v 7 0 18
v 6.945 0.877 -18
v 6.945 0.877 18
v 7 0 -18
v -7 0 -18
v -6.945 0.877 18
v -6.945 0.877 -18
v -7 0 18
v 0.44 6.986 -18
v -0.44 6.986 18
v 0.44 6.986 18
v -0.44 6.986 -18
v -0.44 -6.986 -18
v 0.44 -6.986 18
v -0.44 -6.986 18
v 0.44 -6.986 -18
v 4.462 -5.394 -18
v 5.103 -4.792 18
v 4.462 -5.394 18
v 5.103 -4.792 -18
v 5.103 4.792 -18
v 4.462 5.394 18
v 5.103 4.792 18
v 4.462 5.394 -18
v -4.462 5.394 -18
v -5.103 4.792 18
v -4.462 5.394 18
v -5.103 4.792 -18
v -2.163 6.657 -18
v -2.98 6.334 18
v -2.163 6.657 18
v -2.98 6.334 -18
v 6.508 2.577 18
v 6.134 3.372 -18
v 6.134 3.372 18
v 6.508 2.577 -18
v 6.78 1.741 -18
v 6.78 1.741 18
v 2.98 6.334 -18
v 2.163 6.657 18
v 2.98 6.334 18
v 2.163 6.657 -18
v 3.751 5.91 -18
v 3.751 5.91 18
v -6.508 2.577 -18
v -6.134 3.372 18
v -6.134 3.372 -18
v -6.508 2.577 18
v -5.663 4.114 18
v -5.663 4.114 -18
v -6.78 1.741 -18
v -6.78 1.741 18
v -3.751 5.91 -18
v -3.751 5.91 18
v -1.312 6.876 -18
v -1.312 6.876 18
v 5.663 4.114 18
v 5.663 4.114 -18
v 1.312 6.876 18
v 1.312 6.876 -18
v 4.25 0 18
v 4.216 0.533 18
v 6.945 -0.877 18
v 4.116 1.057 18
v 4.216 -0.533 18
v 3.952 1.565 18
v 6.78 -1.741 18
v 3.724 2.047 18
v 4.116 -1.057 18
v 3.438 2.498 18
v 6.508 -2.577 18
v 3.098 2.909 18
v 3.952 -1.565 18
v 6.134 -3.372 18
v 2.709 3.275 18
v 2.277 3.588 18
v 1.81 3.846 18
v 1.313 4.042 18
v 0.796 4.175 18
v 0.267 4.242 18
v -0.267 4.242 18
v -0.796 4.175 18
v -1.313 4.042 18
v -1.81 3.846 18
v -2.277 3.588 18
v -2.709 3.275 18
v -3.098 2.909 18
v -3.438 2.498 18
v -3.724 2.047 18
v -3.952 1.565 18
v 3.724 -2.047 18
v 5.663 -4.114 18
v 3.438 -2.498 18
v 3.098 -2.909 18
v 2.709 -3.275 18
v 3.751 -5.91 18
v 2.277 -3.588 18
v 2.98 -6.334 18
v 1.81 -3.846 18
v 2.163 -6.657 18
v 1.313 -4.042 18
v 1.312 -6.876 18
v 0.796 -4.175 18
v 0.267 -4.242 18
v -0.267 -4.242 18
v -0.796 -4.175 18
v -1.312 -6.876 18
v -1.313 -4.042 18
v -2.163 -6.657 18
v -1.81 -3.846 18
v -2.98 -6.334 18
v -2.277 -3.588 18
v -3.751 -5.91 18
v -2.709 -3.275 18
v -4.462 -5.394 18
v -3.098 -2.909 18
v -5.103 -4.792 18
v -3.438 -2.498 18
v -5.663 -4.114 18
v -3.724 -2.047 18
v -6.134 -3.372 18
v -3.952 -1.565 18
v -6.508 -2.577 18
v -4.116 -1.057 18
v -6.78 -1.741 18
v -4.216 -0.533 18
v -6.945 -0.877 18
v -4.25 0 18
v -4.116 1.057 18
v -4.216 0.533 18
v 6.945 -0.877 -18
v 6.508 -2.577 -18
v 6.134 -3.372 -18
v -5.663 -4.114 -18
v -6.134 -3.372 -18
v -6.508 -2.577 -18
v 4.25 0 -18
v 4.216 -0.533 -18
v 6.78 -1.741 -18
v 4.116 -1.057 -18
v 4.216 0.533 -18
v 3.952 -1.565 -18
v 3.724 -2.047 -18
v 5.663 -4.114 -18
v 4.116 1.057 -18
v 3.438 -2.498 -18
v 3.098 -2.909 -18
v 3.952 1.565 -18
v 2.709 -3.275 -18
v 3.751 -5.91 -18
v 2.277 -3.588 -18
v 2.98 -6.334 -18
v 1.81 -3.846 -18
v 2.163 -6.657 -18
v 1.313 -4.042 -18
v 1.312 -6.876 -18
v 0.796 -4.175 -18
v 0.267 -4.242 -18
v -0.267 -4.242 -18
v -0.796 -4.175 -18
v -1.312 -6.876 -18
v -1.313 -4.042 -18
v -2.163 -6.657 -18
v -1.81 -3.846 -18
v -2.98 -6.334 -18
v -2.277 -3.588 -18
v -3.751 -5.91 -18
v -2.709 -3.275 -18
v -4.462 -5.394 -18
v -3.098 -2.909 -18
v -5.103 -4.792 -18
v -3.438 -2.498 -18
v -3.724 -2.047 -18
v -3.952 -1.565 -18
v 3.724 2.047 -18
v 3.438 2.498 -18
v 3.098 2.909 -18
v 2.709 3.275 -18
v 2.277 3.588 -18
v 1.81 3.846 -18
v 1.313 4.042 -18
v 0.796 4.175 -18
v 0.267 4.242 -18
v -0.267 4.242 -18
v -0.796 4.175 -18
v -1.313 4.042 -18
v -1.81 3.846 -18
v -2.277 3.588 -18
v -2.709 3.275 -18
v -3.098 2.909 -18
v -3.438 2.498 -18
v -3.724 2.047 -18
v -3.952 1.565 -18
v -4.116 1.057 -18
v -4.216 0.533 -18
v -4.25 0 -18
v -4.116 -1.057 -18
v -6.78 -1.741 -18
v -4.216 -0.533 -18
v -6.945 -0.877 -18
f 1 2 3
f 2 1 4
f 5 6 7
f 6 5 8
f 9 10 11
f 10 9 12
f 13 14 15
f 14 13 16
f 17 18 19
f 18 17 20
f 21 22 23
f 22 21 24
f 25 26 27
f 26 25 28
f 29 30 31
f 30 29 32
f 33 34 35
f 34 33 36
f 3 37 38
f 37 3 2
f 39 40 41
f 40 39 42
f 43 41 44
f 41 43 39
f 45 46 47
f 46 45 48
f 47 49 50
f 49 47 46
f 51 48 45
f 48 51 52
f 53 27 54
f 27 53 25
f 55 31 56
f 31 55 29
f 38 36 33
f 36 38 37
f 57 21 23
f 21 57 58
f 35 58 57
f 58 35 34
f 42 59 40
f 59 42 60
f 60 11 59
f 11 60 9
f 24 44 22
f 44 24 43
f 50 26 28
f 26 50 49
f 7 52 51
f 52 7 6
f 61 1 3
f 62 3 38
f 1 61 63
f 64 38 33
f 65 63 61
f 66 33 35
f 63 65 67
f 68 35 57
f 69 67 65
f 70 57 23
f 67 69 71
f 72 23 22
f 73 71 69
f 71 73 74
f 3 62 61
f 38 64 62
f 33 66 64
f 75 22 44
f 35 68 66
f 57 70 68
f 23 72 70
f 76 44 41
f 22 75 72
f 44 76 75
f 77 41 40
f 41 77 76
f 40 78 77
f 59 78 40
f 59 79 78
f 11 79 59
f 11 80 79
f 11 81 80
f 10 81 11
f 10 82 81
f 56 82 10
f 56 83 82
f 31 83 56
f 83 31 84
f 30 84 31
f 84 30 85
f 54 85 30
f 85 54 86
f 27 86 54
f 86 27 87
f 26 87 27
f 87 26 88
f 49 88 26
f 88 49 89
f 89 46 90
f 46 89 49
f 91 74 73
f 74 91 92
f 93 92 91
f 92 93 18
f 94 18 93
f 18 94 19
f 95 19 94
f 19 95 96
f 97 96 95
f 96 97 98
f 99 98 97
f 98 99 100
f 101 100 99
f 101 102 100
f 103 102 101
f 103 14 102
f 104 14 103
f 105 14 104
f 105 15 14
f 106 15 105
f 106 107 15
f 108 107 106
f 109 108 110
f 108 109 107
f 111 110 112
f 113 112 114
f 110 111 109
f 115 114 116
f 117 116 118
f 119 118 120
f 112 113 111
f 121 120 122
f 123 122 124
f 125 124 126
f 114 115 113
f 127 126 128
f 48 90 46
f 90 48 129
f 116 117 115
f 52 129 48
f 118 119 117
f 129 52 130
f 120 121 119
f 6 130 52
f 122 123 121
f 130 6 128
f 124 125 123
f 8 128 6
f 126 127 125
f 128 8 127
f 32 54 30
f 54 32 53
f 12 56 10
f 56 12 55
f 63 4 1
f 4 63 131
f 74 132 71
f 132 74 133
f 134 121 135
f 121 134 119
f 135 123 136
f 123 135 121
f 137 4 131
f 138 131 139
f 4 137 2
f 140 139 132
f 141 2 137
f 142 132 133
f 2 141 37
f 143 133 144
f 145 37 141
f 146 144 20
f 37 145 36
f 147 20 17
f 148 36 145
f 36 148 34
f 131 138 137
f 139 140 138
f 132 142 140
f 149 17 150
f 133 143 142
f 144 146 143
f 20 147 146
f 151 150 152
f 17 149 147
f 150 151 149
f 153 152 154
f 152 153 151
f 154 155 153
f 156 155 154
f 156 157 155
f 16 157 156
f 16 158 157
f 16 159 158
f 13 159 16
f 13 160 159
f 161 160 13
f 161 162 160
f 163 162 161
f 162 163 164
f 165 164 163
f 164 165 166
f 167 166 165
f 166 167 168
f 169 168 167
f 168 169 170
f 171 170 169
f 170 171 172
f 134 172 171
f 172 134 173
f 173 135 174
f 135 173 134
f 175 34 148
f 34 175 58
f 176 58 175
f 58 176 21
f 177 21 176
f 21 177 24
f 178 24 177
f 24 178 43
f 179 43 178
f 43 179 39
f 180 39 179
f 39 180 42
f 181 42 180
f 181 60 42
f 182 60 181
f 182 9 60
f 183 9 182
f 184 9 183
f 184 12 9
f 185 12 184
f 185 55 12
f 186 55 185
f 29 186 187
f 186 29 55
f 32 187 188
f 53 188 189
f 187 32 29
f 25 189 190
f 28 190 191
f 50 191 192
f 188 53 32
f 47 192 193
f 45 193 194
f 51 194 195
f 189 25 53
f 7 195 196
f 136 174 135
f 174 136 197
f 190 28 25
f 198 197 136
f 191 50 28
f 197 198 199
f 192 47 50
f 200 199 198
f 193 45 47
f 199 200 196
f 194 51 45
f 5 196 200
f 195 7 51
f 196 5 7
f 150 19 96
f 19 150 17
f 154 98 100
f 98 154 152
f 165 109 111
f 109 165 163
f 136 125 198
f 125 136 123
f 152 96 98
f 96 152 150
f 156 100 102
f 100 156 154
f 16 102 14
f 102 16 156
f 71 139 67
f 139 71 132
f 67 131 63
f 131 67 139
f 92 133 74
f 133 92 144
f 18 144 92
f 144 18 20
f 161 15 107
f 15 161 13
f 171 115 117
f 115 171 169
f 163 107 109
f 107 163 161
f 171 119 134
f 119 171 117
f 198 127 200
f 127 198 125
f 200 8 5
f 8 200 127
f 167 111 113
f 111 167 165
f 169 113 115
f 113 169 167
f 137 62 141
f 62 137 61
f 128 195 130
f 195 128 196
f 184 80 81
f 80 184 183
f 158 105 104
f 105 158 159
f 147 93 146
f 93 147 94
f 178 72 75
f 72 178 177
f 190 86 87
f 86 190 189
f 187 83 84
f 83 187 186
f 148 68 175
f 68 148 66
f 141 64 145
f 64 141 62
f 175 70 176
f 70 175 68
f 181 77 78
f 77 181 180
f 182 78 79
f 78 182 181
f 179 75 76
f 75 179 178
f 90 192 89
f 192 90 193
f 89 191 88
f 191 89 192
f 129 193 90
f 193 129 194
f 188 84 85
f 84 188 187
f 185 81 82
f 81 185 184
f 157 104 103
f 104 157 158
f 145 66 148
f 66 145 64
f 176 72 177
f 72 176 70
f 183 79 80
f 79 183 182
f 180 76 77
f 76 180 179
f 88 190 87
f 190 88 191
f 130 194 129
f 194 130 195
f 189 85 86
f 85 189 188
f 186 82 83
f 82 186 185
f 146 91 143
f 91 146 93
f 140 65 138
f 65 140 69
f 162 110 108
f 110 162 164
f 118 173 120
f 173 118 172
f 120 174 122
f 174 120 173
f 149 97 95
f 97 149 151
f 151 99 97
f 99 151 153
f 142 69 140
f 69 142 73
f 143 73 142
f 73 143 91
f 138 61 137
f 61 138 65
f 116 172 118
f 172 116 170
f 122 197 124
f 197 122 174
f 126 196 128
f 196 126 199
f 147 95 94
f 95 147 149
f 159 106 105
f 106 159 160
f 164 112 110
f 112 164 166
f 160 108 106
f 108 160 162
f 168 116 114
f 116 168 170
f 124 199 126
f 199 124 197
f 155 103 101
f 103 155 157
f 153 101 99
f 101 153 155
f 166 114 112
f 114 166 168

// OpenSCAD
$fn = 50;


difference() {
	union() {
		translate(v = [0, 0, -18.0000000000]) {
			cylinder(h = 36, r = 7.0000000000);
		}
	}
	union() {
		translate(v = [0, 0, -100.0000000000]) {
			cylinder(h = 200, r = 4.2500000000);
		}
	}
}
